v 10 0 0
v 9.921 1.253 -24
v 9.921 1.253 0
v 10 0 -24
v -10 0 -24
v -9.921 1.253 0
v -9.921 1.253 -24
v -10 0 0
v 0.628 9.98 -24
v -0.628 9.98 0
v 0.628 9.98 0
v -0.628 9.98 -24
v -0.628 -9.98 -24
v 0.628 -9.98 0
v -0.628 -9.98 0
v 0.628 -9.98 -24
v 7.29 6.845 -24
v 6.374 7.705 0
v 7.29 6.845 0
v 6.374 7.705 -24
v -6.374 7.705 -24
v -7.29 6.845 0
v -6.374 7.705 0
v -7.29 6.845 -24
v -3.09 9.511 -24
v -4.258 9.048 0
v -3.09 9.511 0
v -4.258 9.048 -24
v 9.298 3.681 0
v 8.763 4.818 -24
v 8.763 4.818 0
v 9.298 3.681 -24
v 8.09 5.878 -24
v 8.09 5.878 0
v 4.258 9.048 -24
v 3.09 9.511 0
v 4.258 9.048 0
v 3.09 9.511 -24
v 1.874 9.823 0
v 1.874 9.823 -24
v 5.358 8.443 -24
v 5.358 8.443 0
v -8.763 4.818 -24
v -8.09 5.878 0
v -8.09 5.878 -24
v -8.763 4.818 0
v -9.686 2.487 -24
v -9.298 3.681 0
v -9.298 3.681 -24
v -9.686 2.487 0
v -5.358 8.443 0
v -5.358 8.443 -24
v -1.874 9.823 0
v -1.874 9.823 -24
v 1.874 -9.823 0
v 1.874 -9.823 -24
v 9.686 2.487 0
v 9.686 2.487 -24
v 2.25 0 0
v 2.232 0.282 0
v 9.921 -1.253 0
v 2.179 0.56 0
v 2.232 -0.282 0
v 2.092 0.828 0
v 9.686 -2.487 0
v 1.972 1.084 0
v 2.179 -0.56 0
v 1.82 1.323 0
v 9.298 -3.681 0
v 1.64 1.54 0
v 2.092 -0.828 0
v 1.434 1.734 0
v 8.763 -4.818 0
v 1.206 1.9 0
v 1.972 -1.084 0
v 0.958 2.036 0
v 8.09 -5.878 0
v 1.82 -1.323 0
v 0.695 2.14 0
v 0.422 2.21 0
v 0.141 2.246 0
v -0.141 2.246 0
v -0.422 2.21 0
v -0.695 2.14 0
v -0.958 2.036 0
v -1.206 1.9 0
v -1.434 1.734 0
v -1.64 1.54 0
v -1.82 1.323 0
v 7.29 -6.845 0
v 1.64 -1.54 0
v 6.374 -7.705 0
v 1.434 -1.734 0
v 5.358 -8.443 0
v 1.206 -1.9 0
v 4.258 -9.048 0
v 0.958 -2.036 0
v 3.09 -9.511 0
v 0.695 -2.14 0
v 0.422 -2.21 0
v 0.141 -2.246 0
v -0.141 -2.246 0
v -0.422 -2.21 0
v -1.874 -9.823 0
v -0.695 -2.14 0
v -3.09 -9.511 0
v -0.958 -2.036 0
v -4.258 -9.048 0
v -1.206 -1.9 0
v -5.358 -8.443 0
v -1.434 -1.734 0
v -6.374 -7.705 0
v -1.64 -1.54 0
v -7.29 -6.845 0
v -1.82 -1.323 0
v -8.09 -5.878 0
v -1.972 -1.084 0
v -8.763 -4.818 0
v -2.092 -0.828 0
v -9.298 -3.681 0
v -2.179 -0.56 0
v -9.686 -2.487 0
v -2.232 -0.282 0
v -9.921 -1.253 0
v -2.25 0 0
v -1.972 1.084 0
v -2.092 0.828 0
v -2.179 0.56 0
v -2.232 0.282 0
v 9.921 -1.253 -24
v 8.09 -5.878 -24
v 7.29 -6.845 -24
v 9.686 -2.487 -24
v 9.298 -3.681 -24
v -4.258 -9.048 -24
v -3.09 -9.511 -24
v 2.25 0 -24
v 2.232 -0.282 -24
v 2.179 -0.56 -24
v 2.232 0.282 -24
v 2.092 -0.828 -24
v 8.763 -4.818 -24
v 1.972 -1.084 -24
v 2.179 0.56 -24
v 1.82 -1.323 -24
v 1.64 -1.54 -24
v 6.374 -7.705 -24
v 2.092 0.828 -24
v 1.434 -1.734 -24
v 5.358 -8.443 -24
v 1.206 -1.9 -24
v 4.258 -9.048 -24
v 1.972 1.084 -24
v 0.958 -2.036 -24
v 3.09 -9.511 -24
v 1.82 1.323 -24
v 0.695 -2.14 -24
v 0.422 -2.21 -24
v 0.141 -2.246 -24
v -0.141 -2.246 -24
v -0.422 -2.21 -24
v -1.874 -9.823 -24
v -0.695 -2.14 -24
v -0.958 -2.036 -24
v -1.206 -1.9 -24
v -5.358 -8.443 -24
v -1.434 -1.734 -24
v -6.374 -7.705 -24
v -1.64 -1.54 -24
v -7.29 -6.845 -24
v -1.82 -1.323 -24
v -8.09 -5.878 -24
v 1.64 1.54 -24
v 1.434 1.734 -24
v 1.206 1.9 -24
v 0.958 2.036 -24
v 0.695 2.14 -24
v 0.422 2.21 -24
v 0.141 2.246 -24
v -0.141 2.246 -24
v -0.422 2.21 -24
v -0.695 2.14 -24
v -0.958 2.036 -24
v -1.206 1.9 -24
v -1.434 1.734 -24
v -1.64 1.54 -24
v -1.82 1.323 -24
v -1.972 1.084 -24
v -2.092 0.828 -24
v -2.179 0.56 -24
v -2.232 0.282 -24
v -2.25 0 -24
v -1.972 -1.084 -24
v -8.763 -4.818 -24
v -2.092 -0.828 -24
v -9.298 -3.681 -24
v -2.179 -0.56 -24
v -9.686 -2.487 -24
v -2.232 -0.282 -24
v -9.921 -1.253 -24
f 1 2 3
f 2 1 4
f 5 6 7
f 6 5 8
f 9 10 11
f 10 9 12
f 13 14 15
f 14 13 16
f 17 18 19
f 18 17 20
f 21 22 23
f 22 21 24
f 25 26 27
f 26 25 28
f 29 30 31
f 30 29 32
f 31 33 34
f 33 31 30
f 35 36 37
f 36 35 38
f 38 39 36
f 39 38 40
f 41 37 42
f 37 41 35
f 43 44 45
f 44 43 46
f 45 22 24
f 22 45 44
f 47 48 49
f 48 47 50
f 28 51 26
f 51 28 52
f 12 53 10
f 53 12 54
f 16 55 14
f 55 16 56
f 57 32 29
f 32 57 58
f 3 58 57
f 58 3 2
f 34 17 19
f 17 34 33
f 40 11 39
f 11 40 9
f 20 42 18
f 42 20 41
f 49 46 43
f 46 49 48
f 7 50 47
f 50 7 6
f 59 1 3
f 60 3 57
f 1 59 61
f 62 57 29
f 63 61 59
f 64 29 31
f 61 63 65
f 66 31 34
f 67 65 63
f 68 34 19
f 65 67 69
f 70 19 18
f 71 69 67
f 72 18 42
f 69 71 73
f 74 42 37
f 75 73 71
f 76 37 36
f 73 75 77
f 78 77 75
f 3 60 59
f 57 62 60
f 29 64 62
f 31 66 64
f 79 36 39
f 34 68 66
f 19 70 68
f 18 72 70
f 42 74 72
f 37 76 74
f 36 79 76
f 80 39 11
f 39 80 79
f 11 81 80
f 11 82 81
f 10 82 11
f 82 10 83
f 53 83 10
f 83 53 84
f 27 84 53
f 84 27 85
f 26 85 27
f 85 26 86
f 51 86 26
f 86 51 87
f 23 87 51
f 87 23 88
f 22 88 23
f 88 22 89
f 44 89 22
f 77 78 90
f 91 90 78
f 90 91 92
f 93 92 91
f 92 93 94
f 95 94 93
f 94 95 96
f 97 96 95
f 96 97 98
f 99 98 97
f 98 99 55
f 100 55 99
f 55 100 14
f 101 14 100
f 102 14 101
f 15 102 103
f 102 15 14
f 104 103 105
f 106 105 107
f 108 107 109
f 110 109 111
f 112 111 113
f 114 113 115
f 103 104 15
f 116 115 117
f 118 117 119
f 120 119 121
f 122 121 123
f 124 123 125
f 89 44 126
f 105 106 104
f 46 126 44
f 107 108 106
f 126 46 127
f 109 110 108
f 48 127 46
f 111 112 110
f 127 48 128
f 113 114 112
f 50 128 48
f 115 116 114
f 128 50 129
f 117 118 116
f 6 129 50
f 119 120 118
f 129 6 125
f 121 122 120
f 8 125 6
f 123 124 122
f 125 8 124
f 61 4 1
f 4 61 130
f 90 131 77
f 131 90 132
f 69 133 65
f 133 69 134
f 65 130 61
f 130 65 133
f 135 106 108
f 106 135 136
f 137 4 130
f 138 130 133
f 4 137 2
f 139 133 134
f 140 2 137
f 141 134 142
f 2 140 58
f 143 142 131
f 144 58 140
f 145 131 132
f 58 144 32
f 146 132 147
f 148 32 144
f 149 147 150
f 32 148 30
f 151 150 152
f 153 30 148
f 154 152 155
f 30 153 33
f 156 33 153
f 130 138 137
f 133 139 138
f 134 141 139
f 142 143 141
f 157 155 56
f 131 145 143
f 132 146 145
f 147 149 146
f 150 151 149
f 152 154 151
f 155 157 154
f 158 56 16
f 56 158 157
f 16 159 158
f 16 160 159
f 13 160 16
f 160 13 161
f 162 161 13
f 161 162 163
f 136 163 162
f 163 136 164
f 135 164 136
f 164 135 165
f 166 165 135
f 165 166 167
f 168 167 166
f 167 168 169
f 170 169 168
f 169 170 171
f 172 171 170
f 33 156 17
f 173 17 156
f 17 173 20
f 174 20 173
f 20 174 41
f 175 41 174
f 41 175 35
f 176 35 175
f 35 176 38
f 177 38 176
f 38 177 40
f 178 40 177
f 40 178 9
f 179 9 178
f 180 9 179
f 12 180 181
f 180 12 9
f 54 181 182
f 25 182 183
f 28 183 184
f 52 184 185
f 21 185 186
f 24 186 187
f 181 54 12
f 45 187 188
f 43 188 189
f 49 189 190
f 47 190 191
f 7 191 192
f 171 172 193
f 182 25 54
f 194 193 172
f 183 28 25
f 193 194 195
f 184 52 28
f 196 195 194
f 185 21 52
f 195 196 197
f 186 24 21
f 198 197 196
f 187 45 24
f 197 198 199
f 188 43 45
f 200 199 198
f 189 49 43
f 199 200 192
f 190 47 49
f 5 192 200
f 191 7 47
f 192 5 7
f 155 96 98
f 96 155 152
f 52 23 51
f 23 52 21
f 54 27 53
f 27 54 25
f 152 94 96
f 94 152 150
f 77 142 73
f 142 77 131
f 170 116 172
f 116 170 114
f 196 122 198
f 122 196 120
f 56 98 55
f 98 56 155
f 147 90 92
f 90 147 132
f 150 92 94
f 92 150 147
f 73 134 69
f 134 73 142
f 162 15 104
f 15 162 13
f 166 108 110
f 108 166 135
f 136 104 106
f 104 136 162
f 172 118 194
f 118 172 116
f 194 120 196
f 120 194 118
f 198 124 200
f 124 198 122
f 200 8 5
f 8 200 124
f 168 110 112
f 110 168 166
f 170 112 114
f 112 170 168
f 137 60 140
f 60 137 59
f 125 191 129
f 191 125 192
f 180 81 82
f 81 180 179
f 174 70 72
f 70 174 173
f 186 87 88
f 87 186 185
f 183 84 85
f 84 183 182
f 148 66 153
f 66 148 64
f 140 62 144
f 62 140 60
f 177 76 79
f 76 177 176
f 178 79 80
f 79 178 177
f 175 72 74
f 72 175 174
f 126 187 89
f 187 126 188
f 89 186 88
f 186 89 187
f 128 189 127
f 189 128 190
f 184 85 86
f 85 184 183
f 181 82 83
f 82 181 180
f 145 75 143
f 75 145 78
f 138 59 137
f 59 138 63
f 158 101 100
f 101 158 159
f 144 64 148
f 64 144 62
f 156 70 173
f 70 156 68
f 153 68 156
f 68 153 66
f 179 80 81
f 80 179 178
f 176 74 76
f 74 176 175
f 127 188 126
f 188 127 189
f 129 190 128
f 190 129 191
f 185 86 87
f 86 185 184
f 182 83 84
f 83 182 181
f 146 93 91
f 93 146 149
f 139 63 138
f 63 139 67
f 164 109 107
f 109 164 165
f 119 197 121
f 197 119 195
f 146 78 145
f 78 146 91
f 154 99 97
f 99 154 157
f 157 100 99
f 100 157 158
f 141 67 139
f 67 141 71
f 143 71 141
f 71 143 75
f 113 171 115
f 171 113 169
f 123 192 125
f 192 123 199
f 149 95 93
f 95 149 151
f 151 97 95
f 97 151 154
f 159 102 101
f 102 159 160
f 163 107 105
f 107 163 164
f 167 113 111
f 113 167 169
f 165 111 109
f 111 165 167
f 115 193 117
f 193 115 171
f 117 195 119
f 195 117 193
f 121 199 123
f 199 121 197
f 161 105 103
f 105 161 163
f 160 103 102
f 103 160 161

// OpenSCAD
$fn = 50;


difference() {
	union() {
		translate(v = [0, 0, -24.0000000000]) {
			cylinder(h = 24, r = 10.0000000000);
		}
	}
	union() {
		#translate(v = [0, 0, -24]) {
			cylinder(h = 24, r = 2.2500000000);
		}
	}
}
